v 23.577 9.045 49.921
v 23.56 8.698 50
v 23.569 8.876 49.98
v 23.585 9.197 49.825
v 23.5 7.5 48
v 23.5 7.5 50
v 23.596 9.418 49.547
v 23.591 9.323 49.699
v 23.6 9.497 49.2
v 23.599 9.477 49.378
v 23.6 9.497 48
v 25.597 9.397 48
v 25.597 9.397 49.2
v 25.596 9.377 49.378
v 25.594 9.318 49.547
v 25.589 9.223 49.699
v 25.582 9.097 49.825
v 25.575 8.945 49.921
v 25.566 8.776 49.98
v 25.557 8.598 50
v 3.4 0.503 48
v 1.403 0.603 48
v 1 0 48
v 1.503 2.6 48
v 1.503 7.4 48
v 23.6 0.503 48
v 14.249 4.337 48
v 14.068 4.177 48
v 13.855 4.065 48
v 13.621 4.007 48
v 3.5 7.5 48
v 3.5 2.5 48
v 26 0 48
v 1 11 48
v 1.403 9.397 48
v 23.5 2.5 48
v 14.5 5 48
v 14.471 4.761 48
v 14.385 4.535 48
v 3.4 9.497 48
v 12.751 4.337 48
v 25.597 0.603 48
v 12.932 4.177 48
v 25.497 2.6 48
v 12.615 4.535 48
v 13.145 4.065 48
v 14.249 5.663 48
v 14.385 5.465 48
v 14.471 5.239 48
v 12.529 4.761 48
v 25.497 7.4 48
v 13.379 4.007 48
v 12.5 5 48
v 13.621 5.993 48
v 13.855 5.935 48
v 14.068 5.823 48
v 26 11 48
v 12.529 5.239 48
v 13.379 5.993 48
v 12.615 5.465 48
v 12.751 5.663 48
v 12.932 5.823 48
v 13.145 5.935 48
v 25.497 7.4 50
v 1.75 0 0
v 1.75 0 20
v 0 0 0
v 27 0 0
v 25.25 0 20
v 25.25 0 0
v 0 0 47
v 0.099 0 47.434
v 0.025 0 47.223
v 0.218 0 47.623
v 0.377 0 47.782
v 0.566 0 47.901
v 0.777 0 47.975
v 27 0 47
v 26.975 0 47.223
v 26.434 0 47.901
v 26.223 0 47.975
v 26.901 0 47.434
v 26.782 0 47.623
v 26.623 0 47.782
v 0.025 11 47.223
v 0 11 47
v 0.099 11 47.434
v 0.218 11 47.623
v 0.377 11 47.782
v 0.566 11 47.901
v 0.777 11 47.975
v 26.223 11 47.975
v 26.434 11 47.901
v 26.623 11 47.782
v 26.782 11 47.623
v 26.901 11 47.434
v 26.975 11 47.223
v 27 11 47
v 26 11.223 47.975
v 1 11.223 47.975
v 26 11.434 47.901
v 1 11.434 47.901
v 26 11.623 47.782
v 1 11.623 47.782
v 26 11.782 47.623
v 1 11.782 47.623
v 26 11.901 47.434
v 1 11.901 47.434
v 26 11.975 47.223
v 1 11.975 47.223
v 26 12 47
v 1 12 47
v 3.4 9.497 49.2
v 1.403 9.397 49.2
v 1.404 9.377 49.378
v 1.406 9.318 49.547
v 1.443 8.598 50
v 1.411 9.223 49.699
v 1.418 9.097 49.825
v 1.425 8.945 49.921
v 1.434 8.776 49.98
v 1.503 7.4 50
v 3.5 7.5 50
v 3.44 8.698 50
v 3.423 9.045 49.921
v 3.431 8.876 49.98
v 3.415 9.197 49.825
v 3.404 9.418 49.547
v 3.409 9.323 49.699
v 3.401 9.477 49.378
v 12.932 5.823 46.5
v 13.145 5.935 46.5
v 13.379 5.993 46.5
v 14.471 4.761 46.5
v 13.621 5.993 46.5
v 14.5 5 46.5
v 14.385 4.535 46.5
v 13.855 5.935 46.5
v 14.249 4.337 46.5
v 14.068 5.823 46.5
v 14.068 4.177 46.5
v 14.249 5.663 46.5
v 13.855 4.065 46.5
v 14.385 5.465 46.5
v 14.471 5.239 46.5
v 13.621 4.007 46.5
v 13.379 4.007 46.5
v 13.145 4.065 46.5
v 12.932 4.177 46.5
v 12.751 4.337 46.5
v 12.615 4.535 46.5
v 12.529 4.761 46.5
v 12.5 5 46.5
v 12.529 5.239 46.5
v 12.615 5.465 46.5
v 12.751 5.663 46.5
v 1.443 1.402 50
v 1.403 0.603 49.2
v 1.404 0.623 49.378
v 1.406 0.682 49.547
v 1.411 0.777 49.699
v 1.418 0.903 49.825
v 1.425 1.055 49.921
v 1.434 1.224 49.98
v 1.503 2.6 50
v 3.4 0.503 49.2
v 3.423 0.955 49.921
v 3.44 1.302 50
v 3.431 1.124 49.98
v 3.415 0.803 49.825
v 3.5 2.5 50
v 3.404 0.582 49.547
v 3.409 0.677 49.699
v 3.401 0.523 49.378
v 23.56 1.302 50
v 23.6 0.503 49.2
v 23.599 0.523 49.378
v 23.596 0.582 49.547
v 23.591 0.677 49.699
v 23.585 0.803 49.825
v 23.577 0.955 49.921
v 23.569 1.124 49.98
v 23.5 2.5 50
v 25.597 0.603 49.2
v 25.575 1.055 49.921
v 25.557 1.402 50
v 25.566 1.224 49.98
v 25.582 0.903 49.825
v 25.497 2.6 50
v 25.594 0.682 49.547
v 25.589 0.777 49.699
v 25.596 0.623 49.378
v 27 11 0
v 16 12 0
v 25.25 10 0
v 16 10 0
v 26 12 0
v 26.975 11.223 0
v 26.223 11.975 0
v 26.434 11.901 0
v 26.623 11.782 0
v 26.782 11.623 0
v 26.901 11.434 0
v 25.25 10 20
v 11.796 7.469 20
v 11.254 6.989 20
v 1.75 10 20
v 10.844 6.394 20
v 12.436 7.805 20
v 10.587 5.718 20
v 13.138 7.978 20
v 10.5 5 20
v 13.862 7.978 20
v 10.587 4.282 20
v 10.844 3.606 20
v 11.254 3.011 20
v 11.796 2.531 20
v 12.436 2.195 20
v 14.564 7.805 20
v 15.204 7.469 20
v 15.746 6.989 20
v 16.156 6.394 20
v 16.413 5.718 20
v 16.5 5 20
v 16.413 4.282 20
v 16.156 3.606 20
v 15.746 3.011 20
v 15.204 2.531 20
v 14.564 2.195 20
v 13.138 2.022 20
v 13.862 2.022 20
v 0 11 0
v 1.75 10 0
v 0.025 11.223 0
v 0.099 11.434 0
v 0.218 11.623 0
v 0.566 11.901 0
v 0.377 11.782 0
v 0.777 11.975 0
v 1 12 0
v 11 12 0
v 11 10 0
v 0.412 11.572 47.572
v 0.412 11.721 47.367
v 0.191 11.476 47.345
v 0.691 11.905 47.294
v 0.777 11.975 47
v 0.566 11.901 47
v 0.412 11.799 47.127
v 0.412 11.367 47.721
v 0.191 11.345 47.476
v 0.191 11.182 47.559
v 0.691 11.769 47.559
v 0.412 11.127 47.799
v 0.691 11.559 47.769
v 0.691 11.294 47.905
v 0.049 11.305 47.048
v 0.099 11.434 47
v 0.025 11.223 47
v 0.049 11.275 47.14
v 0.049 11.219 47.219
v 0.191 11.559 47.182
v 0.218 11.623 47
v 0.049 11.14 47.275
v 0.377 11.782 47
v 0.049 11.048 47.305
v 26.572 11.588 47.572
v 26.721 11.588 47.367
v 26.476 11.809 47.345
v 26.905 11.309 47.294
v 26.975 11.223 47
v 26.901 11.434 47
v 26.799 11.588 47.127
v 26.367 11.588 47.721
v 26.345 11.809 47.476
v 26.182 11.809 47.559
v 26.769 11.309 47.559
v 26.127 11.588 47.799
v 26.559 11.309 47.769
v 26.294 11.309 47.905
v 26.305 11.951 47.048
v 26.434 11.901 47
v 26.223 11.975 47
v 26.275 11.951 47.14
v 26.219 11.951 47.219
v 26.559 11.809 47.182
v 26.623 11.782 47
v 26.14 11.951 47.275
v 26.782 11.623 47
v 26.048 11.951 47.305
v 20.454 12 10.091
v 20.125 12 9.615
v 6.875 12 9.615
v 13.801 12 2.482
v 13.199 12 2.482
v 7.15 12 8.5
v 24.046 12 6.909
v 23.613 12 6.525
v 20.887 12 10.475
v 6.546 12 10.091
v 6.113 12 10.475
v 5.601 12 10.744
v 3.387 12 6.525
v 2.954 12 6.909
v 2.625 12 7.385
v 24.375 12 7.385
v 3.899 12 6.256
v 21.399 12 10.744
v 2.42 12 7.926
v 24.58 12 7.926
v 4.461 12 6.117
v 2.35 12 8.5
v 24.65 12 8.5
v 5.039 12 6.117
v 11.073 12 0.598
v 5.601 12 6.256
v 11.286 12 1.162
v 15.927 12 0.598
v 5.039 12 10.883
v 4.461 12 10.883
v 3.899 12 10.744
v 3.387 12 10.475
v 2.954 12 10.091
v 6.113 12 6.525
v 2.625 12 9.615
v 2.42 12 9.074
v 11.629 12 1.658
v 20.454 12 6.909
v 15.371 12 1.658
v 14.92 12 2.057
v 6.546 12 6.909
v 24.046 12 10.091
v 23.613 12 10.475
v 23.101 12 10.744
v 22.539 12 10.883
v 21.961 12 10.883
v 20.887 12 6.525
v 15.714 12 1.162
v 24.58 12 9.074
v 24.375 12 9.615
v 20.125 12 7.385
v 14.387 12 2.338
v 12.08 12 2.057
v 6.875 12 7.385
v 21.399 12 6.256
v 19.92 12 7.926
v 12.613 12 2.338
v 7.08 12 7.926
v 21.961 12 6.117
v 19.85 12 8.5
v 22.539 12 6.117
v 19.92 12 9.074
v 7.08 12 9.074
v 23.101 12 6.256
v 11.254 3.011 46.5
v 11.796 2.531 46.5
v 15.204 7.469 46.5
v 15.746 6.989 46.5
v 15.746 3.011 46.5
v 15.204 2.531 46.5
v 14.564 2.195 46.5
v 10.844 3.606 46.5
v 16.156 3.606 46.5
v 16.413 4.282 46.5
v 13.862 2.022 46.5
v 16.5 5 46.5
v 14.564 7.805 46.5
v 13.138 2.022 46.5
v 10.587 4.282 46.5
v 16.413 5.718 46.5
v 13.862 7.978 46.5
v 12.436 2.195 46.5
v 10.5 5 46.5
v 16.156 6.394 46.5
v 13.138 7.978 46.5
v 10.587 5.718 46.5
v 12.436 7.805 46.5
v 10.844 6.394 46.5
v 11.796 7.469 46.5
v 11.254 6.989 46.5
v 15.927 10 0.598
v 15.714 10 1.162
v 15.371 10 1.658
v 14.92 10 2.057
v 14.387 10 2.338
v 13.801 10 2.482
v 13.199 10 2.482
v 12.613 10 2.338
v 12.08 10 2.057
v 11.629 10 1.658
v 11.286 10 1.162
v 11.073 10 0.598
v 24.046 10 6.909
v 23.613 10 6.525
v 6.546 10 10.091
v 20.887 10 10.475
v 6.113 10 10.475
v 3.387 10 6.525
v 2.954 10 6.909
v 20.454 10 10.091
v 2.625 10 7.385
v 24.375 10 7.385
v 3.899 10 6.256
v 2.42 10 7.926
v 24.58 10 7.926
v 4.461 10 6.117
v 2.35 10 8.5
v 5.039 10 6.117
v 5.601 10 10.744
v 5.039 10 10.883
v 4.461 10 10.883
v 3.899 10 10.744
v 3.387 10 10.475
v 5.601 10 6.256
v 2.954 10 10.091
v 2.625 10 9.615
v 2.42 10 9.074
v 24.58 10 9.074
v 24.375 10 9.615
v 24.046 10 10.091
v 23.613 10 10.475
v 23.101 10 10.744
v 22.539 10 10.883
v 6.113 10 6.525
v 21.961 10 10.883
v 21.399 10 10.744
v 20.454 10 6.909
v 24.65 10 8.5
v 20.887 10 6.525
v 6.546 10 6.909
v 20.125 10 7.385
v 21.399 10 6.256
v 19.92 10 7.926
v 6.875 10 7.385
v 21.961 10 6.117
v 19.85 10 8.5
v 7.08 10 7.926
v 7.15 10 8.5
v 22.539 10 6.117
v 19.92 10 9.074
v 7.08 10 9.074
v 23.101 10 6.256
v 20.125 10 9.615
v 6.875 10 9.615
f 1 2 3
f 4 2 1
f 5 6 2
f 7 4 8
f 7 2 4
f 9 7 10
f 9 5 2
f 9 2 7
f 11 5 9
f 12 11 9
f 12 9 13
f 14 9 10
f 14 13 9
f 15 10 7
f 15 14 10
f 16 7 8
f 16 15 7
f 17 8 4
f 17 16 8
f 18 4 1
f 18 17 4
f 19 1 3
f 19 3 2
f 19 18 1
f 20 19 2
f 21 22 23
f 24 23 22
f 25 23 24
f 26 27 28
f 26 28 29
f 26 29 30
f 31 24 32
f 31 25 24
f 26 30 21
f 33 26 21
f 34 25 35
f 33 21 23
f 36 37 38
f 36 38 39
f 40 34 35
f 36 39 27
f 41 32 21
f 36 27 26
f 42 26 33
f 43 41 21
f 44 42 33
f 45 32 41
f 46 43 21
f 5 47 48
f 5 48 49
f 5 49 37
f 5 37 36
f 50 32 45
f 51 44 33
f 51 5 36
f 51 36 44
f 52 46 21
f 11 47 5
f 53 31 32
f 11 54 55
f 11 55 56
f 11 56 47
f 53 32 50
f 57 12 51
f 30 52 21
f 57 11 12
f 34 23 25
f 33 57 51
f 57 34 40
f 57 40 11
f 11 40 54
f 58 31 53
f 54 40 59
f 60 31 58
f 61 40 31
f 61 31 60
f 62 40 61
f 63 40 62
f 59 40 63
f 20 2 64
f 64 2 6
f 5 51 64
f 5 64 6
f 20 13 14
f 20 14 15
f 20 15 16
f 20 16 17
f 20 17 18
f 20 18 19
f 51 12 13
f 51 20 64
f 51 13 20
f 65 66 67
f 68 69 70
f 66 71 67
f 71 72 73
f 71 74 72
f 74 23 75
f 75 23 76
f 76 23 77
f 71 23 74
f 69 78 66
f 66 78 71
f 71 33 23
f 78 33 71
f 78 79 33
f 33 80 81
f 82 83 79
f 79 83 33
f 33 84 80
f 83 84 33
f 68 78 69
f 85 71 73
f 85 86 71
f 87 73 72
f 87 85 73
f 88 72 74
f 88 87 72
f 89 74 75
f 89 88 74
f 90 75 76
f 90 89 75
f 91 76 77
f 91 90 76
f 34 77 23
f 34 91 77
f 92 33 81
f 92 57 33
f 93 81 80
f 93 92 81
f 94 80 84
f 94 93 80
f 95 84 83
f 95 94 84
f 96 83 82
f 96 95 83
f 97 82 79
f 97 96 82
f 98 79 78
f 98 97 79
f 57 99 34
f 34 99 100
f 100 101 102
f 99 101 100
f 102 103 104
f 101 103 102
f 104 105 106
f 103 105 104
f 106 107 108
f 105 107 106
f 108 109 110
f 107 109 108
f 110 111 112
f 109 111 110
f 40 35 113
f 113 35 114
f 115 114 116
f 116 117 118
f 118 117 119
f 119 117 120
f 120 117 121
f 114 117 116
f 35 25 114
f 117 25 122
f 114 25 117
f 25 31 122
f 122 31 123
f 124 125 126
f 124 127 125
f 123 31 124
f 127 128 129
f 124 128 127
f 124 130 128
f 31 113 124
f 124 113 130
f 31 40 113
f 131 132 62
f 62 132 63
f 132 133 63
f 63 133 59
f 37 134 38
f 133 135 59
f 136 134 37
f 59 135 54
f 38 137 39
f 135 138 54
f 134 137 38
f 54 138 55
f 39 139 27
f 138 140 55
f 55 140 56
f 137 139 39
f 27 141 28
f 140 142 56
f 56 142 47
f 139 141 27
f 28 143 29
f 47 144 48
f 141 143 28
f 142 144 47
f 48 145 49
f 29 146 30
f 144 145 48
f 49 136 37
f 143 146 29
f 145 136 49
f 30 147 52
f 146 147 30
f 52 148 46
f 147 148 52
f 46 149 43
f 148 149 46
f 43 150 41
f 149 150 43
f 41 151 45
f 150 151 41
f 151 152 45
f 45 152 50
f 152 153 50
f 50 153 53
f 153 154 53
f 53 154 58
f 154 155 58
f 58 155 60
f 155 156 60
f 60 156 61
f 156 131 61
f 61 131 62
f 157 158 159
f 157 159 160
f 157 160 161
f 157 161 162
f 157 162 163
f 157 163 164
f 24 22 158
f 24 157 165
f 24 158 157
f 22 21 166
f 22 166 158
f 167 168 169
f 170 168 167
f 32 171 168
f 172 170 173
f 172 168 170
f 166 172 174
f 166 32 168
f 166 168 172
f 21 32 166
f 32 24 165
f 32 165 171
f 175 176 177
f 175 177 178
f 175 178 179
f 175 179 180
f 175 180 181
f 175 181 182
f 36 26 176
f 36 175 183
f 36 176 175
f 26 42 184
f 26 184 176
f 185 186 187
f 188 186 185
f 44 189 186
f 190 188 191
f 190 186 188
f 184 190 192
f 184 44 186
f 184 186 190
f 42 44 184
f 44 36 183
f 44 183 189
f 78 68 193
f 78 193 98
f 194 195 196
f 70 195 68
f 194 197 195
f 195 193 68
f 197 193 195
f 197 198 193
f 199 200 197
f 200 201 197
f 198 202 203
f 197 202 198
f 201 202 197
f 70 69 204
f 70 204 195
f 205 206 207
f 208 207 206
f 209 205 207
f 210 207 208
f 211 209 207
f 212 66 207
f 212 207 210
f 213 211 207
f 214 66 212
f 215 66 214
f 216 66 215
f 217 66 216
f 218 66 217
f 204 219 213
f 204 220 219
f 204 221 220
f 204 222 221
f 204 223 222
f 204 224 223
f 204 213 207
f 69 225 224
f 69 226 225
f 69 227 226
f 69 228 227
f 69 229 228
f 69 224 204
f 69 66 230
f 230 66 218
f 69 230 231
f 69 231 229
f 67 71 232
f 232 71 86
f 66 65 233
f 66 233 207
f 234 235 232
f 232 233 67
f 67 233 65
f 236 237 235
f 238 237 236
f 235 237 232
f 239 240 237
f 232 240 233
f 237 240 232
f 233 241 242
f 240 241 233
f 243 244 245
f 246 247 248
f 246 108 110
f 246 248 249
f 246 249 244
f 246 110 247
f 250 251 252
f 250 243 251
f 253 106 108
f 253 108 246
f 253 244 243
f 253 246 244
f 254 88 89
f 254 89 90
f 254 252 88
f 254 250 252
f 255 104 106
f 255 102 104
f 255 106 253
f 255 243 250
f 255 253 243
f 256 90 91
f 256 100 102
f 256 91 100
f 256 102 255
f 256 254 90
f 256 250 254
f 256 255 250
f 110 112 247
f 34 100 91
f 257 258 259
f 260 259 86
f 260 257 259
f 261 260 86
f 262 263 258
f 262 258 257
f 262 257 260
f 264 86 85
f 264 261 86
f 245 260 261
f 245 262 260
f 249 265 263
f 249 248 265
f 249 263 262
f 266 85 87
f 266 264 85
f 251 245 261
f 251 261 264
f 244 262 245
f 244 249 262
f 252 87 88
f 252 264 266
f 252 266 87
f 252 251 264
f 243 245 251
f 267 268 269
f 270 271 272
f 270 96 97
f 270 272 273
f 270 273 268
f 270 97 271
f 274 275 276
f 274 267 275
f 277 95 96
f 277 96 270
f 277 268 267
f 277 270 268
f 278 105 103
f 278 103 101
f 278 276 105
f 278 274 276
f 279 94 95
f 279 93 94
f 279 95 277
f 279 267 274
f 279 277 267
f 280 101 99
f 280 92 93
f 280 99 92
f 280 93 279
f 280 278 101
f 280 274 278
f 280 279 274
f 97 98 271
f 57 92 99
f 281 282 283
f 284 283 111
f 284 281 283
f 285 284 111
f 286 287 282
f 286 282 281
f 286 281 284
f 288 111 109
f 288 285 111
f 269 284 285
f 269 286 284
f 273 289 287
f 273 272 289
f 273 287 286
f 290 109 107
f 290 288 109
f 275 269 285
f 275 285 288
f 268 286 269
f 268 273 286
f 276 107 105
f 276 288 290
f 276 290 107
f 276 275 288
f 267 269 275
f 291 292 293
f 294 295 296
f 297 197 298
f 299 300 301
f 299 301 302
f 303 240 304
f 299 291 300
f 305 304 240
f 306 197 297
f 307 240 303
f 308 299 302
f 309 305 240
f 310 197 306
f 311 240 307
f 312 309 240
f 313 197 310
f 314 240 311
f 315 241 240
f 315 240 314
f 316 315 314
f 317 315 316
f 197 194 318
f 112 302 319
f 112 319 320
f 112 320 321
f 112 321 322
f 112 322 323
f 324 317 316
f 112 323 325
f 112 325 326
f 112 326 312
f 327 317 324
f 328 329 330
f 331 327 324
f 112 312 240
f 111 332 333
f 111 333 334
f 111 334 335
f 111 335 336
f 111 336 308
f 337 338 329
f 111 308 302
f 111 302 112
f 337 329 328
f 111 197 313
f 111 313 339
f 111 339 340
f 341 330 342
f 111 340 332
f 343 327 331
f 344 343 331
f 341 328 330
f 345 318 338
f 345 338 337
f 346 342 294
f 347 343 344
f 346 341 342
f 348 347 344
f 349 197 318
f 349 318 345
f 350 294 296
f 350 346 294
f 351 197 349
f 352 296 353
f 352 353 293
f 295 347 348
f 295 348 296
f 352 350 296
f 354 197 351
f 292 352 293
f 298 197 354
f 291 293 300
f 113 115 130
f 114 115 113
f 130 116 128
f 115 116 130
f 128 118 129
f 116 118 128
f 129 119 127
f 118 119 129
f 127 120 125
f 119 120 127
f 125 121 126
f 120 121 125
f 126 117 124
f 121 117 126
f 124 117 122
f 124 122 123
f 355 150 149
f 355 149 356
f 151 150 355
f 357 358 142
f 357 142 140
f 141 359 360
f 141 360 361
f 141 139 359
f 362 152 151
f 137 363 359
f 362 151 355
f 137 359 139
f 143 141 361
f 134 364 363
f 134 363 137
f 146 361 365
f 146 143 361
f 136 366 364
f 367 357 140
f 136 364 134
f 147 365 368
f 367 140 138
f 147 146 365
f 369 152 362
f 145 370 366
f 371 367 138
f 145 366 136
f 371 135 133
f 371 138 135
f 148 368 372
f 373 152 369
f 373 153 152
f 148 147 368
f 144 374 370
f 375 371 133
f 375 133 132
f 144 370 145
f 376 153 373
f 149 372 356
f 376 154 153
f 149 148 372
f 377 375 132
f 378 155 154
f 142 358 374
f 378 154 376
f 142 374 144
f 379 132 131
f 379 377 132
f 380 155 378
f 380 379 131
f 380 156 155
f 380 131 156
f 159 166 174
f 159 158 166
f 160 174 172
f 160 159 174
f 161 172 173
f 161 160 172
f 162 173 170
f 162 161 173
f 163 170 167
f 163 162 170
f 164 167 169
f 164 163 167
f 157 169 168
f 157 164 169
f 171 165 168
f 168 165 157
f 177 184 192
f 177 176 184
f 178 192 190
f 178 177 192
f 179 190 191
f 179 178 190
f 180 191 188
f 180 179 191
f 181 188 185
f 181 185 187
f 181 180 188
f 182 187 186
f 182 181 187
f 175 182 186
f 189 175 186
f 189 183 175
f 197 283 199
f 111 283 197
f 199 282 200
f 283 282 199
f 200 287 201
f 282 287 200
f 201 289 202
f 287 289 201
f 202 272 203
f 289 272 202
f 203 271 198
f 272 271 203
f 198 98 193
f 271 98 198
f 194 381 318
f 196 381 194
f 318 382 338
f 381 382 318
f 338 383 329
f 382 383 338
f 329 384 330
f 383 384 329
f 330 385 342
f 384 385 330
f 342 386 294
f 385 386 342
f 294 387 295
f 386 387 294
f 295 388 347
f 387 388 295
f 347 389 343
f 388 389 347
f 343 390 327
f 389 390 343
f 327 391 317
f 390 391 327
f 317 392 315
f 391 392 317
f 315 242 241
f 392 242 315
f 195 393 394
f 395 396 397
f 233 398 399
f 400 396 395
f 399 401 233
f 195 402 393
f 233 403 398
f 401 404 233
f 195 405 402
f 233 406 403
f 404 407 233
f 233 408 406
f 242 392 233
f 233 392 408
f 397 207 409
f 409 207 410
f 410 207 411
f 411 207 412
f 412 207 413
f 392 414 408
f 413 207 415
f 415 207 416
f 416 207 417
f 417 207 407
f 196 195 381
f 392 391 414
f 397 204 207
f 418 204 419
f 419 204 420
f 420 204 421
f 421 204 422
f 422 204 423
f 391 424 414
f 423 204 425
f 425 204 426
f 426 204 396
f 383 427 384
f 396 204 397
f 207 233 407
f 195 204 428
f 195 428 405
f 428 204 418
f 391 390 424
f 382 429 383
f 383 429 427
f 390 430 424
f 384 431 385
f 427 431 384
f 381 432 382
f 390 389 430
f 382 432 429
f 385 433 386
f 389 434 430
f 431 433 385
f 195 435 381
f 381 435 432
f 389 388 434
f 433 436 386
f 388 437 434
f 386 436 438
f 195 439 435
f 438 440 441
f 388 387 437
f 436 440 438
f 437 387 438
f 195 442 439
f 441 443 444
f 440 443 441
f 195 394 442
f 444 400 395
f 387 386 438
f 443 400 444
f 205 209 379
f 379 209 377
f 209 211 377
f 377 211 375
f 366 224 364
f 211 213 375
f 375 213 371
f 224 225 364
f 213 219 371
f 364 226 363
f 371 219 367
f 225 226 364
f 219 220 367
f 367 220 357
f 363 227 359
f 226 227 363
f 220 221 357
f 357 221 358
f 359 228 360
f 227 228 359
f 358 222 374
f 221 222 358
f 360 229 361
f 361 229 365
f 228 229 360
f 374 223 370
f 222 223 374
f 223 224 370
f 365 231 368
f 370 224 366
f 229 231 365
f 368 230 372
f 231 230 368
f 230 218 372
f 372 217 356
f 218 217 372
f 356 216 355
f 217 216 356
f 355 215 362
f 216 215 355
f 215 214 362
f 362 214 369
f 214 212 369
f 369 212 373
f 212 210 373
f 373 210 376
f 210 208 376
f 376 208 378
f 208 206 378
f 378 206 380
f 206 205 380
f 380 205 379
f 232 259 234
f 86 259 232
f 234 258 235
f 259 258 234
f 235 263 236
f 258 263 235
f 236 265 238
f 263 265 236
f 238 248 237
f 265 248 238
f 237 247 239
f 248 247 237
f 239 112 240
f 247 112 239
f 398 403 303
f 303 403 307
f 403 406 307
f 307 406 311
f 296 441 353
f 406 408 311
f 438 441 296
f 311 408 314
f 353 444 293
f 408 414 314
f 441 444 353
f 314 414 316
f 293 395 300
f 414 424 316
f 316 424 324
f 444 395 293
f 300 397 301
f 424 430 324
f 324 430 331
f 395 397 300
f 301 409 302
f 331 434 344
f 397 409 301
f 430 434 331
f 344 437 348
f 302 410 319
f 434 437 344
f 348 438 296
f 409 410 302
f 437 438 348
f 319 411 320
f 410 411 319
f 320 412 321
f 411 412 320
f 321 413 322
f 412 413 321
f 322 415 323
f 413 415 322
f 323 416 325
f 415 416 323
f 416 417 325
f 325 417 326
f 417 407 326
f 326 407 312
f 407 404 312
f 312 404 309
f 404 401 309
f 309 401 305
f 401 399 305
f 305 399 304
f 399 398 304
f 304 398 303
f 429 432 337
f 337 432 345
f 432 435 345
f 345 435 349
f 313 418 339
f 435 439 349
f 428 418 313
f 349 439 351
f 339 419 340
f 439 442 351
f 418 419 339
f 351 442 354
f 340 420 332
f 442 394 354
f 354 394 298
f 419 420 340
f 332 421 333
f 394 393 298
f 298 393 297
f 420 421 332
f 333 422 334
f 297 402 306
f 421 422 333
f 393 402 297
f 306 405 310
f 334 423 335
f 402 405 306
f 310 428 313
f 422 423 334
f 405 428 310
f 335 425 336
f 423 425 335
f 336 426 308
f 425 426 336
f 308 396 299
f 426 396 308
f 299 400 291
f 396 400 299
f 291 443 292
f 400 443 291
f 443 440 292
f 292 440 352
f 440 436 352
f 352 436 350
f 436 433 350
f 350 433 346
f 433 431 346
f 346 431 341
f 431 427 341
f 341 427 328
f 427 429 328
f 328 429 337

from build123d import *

# Parameters (mm, degrees)
BOX_W           = 27
BOX_H           = 12
BOX_DEPTH       = 48
SKETCH_W        = 23.5
SKETCH_H        = 20
POCKET_DEPTH    = 10
SKETCH002_R     = 1
POCKET001_DEPTH = 28.001
SKETCH003_R     = 3
POCKET002_DEPTH = 26.5
SKETCH004_R     = 2.4
POCKET003_DEPTH = 2.001
POCKET004_DEPTH = 2.001
PAD_DEPTH       = 2
FILLET_R        = 1
FILLET001_R     = 0.8


with BuildPart() as part:
    # Box → Box (new body)
    with BuildSketch(Plane.XY):
        with Locations((13.5, 6)):
            Rectangle(BOX_W, BOX_H)
    extrude(amount=BOX_DEPTH)

    # Sketch (on Face3 of BaseFeature) → Pocket (cut)
    with BuildSketch(Plane.XZ):
        with Locations((13.5, 10)):
            Rectangle(SKETCH_W, SKETCH_H)
    extrude(amount=-POCKET_DEPTH, mode=Mode.SUBTRACT)

    # Sketch002 (on Face7 of Pocket) → Pocket001 (cut, through all)
    with BuildSketch(Plane(origin=(0, 0, 20), x_dir=(1, 0, 0), z_dir=(0, 0, -1))):
        with Locations((13.5, -5)):
            Circle(SKETCH002_R)
    extrude(amount=-POCKET001_DEPTH, mode=Mode.SUBTRACT)

    # Sketch003 (on Face7 of Pocket001) → Pocket002 (cut)
    with BuildSketch(Plane(origin=(0, 0, 20), x_dir=(1, 0, 0), z_dir=(0, 0, -1))):
        with Locations((13.5, -5)):
            Circle(SKETCH003_R)
    extrude(amount=-POCKET002_DEPTH, mode=Mode.SUBTRACT)

    # Sketch004 (on Face11 of Pocket002) → Pocket003 (cut, through all)
    with BuildSketch(Plane.XZ.offset(-10)):
        with Locations((4.75, 8.5)):
            Circle(SKETCH004_R)
        with Locations((22.25, 8.5)):
            Circle(SKETCH004_R)
    extrude(amount=-POCKET003_DEPTH, mode=Mode.SUBTRACT)

    # Sketch005 (on Face13 of Pocket003) → Pocket004 (cut, through all)
    with BuildSketch(Plane.XZ.offset(-10)):
        with BuildLine():
            ThreePointArc((16, 0), (13.5, 2.5), (11, 0))
            Line((11, 0), (16, 0))
        make_face()
    extrude(amount=-POCKET004_DEPTH, mode=Mode.SUBTRACT)

    # Sketch006 (on Face3 of Pocket004) → Pad (join)
    with BuildSketch(Plane.XY.offset(48)):
        Polygon((3.4, 9.497498), (1.402502, 9.397498), (1.502502, 7.4), (3.5, 7.5), align=None)
        Polygon((1.502502, 2.6), (3.5, 2.5), (3.4, 0.502502), (1.402502, 0.602502), align=None)
        Polygon((23.5, 2.5), (25.497498, 2.6), (25.597498, 0.602502), (23.6, 0.502502), align=None)
        Polygon((23.6, 9.497498), (25.597498, 9.397498), (25.497498, 7.4), (23.5, 7.5), align=None)
    extrude(amount=PAD_DEPTH)

    # Fillet
    fillet_edges = [part.edges().sort_by_distance(p)[0] for p in [
        (27, 6, 48),
        (27, 12, 24),
        (13.5, 12, 48),
        (0, 12, 24),
        (0, 6, 48),
    ]]
    fillet(fillet_edges, radius=FILLET_R)

    # Fillet001
    fillet001_edges = [part.edges().sort_by_distance(p)[0] for p in [
        (2.401251, 9.447498, 50),
        (2.401251, 0.552502, 50),
        (24.598749, 9.447498, 50),
        (24.598749, 0.552502, 50),
    ]]
    fillet(fillet001_edges, radius=FILLET001_R)


solid = part.part
